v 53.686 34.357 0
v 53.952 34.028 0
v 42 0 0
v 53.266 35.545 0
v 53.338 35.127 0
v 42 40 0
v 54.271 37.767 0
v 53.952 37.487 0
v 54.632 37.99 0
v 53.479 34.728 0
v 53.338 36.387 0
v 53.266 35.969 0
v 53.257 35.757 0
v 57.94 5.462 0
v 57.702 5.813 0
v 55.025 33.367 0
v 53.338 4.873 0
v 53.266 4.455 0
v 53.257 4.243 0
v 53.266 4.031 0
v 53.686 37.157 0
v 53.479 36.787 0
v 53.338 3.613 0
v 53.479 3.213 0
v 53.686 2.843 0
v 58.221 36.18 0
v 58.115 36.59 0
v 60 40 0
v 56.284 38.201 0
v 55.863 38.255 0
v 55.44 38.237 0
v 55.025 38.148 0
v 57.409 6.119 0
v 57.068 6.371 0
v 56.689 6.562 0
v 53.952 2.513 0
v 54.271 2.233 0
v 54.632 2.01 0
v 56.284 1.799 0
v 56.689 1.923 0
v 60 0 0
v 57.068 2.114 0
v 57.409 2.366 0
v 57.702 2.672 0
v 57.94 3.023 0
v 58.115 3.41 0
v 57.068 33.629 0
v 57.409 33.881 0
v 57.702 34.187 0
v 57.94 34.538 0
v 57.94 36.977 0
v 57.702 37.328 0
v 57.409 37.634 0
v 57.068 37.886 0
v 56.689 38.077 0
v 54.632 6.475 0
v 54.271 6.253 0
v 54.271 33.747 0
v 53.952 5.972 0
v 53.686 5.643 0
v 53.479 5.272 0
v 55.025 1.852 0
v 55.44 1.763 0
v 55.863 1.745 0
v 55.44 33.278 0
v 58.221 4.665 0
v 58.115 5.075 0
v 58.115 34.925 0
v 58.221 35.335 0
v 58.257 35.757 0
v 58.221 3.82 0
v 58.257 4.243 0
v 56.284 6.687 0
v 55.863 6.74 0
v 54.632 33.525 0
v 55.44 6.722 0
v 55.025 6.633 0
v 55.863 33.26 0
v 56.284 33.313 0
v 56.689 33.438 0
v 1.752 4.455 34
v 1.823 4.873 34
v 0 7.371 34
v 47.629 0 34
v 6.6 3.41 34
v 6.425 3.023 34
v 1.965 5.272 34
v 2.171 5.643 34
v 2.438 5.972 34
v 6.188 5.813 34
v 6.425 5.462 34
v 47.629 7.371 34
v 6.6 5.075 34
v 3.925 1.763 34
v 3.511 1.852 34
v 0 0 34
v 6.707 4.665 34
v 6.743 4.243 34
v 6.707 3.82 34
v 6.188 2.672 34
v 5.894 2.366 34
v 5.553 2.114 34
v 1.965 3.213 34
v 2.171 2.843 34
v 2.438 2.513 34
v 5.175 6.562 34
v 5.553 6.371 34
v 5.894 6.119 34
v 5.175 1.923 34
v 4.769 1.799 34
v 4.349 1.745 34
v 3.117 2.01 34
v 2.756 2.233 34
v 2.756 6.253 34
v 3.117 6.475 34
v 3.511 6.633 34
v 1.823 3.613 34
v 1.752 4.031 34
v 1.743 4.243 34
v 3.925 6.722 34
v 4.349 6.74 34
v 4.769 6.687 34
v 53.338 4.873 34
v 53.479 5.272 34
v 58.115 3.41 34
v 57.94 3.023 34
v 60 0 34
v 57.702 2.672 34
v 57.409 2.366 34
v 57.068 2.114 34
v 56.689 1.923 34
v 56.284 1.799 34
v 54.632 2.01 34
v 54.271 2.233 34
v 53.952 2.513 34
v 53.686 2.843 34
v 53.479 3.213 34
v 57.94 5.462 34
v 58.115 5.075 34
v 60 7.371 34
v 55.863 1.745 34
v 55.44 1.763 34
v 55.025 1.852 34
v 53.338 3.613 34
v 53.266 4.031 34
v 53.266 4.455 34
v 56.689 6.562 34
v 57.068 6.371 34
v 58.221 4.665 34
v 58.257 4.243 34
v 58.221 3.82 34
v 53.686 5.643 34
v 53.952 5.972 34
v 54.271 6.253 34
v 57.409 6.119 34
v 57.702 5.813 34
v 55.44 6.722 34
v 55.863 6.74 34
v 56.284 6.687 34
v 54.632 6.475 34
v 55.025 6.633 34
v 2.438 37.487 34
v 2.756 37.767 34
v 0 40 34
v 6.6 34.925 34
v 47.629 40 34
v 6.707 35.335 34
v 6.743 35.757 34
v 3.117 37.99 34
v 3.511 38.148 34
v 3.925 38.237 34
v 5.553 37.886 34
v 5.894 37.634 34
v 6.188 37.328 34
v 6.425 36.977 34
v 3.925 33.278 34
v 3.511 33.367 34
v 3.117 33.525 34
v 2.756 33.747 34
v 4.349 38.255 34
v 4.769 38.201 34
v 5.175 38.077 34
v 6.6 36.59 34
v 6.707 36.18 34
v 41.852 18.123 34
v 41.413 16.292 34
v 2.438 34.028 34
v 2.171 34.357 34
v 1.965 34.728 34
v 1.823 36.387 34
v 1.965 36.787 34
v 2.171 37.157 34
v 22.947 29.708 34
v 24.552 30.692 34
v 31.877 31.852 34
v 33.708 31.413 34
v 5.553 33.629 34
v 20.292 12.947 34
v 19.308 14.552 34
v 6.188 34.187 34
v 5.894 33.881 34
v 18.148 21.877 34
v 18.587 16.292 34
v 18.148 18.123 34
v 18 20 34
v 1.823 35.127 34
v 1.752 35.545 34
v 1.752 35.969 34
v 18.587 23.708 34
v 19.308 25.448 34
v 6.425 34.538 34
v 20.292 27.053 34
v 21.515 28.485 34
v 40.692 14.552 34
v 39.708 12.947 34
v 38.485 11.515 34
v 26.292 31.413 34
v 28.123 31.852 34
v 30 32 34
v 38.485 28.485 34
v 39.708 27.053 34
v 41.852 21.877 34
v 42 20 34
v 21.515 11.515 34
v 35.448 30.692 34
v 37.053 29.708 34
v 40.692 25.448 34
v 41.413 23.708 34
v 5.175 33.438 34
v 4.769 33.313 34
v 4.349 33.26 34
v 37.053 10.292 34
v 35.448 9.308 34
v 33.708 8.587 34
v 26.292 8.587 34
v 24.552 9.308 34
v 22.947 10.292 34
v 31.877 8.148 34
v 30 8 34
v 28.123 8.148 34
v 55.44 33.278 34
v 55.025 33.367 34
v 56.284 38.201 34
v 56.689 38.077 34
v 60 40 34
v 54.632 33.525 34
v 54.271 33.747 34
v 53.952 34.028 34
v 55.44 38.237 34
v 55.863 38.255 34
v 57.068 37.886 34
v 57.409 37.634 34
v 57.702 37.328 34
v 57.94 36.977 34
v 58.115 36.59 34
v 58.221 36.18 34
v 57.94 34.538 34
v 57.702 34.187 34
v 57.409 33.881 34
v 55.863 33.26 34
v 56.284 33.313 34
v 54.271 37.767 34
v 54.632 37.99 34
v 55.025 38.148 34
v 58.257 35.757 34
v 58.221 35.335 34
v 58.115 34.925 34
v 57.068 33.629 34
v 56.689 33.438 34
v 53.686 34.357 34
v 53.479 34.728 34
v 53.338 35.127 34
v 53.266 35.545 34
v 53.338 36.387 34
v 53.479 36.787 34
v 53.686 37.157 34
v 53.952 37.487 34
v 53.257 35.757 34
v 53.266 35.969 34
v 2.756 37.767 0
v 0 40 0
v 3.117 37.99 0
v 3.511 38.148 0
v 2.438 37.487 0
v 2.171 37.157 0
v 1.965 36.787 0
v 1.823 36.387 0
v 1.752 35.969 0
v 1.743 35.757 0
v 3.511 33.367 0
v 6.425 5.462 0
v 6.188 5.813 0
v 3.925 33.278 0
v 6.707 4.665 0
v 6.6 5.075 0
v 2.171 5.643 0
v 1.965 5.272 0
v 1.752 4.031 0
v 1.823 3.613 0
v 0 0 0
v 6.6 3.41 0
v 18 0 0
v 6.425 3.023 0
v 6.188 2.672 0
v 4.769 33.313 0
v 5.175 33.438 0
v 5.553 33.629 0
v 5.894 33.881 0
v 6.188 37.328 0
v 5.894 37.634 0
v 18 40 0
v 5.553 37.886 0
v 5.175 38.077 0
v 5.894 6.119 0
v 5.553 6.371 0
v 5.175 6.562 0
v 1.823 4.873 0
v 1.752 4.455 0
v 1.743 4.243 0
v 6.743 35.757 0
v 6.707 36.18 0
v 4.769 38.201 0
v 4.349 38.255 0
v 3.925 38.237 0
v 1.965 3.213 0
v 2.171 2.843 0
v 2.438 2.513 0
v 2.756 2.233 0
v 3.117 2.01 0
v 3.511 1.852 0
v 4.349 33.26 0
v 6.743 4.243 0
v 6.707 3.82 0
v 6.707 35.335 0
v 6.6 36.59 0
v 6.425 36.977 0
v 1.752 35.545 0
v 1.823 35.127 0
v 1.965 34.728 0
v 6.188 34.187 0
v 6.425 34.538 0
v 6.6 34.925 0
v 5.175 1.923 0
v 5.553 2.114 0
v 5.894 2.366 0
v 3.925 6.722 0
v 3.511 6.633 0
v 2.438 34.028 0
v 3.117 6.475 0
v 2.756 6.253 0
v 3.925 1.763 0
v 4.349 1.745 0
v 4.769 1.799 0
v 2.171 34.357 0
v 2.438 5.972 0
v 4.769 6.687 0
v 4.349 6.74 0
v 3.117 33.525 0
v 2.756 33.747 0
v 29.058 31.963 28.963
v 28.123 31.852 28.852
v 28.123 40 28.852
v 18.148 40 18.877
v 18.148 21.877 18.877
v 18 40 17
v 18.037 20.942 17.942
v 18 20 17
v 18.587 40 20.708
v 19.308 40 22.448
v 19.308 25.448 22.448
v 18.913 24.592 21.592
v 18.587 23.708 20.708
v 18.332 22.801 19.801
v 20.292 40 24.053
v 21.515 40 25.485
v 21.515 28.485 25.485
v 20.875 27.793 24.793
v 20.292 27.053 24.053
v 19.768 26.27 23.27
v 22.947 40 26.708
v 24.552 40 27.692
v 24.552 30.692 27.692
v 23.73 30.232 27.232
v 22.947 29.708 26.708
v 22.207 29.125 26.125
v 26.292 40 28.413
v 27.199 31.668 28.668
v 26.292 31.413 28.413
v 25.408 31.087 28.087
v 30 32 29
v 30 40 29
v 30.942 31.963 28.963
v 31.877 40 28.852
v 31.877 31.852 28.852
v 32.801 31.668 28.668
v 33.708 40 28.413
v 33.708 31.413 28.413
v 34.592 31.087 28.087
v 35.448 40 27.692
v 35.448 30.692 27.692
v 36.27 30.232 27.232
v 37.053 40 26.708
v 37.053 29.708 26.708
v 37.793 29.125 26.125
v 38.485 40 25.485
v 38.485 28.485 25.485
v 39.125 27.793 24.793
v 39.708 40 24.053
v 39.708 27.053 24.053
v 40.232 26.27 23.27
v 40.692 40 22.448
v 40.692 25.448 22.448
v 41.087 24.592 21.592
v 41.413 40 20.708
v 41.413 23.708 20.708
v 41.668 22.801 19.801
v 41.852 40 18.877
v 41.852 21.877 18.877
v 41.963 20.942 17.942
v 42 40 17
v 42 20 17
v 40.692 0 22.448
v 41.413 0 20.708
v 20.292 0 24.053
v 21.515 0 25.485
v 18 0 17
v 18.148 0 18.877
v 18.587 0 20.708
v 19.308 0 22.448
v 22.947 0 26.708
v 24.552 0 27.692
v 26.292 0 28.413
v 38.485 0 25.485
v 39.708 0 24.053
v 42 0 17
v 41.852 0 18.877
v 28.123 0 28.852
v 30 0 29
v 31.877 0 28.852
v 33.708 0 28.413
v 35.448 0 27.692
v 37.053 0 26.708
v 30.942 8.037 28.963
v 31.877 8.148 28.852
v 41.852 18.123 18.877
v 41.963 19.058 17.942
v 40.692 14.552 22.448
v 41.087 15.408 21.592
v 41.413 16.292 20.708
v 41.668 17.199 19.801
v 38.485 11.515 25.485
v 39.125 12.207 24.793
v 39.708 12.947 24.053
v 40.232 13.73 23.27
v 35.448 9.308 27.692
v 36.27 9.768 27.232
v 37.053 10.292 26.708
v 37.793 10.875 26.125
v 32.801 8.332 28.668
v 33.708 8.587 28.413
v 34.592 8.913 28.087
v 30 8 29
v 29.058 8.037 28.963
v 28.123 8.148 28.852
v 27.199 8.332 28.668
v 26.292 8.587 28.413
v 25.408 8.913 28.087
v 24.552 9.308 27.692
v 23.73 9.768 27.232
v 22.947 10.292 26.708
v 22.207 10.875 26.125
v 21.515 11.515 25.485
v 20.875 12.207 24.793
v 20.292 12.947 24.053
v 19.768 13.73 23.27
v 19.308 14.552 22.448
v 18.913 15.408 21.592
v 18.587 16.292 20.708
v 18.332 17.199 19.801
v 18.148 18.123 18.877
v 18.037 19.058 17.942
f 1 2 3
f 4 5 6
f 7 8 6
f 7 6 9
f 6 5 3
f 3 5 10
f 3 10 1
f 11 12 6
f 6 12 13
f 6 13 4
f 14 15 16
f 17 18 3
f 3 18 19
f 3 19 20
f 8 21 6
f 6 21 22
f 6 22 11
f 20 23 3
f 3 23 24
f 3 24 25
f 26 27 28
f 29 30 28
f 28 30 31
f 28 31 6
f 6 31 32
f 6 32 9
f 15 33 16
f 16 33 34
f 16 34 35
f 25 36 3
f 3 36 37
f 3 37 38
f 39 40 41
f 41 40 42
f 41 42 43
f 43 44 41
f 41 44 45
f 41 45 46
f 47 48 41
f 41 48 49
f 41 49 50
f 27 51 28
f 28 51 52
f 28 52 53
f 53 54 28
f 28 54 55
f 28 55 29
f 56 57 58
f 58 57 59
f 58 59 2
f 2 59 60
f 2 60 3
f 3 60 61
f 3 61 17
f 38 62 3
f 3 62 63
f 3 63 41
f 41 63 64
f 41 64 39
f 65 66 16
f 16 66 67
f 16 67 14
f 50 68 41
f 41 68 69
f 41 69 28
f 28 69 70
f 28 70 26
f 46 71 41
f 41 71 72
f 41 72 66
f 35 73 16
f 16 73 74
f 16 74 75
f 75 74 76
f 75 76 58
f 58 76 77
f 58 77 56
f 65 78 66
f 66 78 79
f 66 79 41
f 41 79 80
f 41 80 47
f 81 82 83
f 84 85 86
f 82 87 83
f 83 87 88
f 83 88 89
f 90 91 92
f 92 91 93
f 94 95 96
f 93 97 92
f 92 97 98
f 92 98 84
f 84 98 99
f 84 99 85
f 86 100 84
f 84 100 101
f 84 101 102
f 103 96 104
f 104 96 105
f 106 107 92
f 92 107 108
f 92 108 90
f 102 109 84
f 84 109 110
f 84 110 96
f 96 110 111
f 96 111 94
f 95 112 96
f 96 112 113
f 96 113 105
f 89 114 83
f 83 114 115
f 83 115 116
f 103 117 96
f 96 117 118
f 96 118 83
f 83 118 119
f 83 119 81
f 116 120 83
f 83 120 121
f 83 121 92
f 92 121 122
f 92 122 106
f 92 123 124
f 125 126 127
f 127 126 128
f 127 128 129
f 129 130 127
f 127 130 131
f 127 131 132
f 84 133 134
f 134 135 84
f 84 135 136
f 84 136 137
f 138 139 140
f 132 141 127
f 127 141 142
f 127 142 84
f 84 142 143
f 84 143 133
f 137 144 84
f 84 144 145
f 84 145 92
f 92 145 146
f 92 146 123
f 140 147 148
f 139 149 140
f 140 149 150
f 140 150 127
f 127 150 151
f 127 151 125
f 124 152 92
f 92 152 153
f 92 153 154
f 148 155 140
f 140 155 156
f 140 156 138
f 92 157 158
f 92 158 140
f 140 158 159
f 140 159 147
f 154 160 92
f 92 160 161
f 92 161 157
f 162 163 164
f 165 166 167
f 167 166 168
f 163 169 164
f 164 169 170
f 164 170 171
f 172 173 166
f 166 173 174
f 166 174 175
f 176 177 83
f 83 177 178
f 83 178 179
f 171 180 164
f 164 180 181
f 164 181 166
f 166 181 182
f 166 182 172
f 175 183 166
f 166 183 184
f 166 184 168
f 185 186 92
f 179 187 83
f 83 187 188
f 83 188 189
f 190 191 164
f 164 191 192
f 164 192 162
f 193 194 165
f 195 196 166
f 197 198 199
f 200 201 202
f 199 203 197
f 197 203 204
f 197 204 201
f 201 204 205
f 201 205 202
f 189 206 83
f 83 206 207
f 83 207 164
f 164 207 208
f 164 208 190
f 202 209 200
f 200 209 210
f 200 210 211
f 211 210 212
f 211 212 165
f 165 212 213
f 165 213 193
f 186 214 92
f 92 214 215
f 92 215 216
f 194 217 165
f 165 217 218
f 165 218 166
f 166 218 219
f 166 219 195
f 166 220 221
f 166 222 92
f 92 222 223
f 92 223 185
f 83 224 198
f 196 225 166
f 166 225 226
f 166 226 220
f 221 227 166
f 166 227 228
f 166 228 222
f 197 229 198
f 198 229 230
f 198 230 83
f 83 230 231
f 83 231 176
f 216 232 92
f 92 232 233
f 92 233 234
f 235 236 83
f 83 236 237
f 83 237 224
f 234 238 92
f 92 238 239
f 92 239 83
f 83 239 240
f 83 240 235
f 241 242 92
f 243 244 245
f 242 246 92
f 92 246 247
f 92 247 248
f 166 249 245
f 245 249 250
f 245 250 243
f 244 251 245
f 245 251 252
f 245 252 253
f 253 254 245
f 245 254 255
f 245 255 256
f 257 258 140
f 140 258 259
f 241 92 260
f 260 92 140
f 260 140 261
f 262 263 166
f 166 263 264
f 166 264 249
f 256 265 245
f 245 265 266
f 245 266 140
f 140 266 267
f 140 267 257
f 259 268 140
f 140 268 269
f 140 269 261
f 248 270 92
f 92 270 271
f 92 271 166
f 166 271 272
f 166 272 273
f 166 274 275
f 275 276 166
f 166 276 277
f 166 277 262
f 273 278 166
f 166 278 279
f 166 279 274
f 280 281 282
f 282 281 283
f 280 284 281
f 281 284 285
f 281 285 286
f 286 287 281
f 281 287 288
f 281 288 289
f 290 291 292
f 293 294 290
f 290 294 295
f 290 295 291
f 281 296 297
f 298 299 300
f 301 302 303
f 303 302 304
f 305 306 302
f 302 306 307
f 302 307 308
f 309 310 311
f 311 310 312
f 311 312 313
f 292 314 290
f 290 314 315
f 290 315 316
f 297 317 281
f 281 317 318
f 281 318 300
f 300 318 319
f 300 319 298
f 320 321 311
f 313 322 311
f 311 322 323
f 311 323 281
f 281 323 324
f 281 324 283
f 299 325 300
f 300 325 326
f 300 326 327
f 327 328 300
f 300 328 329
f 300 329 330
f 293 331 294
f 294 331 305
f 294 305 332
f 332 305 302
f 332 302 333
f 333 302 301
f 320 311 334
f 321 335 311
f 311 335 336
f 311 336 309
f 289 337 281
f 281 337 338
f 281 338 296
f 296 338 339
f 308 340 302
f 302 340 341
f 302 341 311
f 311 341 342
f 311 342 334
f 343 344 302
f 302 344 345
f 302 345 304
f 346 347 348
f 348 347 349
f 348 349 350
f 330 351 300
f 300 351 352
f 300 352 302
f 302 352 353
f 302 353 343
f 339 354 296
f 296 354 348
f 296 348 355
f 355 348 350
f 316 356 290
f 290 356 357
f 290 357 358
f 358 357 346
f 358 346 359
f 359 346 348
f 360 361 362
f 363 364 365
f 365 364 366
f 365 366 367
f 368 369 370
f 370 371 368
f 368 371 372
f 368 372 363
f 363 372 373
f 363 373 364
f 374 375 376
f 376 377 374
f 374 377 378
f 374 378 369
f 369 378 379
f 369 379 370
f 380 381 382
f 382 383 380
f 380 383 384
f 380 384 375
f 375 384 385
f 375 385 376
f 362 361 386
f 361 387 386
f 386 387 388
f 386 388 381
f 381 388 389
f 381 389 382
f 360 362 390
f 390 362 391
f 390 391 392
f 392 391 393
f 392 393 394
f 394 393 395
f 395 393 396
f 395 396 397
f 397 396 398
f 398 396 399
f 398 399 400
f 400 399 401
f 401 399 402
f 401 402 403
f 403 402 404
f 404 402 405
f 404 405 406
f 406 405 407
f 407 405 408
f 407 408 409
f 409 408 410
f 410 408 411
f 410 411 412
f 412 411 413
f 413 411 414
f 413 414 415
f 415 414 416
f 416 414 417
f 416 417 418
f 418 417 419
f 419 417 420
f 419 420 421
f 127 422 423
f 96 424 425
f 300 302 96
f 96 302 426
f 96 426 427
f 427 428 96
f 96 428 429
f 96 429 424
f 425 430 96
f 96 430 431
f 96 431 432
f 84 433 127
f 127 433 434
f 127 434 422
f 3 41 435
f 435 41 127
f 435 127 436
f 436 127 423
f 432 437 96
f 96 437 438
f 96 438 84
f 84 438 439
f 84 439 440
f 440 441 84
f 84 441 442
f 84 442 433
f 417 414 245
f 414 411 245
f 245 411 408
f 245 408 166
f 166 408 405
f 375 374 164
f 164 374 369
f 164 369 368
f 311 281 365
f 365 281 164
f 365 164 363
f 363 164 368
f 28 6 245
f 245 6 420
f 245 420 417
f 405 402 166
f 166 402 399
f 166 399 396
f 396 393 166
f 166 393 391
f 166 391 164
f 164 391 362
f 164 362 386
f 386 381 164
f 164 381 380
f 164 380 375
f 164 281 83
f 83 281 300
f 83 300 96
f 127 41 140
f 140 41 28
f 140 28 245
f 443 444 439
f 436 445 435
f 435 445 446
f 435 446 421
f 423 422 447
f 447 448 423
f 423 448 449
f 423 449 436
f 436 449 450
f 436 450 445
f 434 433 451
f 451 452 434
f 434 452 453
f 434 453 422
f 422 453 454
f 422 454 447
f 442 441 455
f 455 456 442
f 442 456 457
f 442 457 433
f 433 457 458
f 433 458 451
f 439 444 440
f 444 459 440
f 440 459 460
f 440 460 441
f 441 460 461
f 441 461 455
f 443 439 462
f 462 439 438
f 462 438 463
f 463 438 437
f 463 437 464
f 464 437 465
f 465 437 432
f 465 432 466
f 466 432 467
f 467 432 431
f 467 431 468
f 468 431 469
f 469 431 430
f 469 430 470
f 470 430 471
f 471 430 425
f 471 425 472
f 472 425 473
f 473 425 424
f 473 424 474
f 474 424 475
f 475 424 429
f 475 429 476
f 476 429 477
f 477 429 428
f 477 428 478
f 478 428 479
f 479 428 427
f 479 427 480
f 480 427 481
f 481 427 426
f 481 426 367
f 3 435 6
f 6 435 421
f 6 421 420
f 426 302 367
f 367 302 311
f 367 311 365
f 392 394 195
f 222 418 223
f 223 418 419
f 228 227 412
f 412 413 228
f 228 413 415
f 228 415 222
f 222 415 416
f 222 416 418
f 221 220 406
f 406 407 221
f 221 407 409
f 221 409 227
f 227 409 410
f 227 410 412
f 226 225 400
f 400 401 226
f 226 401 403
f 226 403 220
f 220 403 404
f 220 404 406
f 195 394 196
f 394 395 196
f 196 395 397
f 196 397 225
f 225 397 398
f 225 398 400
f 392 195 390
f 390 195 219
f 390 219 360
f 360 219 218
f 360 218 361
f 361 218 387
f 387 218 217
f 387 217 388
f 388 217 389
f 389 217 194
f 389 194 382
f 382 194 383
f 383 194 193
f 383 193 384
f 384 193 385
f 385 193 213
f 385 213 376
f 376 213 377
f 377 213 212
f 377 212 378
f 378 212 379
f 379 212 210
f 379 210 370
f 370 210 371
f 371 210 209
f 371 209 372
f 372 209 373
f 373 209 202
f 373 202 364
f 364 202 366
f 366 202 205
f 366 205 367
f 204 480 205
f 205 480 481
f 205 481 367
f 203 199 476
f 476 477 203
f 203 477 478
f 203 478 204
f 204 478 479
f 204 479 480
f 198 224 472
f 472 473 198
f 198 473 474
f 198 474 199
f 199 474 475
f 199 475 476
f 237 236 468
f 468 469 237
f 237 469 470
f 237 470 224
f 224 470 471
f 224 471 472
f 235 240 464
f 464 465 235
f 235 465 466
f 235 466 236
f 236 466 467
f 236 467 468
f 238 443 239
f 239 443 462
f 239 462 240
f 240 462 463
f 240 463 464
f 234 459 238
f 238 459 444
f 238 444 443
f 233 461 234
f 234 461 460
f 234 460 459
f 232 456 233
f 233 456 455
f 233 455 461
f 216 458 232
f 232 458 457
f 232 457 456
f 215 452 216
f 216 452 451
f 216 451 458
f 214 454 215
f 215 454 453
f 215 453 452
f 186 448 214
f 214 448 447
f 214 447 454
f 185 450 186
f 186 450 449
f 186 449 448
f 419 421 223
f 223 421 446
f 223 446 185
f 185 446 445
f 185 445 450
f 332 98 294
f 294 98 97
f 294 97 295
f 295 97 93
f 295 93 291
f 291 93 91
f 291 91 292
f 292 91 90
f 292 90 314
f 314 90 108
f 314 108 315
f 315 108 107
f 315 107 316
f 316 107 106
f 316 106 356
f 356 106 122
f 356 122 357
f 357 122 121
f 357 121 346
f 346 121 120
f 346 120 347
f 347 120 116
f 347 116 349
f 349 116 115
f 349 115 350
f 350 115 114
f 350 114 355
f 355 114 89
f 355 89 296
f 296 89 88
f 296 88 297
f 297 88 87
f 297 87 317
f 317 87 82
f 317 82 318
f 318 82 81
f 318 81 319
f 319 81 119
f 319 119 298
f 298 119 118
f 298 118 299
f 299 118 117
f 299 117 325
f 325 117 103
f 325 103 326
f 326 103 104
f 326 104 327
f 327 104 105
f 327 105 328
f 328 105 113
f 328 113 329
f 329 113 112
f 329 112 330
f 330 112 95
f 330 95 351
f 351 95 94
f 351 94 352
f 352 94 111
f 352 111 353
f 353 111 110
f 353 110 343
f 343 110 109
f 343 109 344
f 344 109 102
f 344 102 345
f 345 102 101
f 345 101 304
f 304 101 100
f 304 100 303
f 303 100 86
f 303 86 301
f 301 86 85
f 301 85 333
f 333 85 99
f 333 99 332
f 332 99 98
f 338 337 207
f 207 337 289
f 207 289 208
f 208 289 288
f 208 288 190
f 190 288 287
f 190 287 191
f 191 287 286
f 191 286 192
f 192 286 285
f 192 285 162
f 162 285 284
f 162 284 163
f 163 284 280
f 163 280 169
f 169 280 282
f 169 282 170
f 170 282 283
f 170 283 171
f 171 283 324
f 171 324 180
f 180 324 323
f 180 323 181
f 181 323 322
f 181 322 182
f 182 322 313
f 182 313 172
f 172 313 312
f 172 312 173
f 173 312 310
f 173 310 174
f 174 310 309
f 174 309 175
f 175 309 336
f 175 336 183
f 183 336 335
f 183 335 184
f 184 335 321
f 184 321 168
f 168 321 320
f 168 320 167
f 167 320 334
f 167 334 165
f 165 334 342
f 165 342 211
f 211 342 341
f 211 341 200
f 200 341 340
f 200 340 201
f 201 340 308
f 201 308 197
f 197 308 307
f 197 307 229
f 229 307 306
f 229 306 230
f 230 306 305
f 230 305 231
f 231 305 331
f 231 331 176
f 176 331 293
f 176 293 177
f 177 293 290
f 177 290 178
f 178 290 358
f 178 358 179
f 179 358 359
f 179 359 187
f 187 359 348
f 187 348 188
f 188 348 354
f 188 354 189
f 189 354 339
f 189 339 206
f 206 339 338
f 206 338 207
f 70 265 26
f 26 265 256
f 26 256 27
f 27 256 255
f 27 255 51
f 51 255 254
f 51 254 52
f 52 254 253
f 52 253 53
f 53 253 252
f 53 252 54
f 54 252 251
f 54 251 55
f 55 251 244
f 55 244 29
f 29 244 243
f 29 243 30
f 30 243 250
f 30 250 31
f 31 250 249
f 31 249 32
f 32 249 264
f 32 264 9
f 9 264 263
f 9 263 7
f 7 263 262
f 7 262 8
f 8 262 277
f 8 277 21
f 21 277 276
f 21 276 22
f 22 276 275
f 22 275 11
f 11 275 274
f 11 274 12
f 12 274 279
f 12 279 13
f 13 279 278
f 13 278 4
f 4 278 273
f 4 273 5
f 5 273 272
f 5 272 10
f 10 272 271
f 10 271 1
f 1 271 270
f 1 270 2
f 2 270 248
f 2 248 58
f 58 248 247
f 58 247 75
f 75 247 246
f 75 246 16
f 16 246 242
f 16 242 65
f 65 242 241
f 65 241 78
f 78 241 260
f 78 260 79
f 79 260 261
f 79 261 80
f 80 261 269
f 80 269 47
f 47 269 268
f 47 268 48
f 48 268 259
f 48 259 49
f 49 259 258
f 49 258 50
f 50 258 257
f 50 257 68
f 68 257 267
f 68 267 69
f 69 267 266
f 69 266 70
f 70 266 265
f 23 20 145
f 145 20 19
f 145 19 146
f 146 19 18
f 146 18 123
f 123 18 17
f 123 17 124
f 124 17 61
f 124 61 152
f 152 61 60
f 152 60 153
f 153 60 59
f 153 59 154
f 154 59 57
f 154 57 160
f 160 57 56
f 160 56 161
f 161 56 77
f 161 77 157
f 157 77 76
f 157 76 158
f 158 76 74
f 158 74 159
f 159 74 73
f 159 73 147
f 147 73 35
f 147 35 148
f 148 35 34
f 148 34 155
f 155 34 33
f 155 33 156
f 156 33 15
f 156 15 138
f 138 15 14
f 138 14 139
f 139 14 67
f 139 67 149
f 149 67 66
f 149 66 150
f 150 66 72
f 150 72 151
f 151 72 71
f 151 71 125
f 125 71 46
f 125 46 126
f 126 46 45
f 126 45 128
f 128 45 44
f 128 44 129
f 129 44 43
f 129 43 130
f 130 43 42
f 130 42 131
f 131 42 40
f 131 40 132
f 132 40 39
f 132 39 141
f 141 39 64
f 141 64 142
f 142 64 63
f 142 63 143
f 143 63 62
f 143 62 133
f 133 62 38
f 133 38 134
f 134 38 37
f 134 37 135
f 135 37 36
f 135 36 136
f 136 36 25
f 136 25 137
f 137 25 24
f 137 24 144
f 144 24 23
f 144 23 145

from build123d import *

# Parameters (mm, degrees)
SKETCH1_W           = 60
SKETCH1_H           = 40
BOSS_EXTRUDE1_DEPTH = 34
CUT_EXTRUDE1_DEPTH  = 40
SKETCH3_R           = 12
CUT_EXTRUDE2_DEPTH  = 40
SKETCH4_R           = 2.5
CUT_EXTRUDE3_DEPTH  = 40


with BuildPart() as part:
    # Sketch1 → Boss-Extrude1 (new body)
    with BuildSketch(Plane.XY):
        with Locations((30, 20)):
            Rectangle(SKETCH1_W, SKETCH1_H)
    extrude(amount=BOSS_EXTRUDE1_DEPTH)

    # Sketch2 → Cut-Extrude1 (cut)
    with BuildSketch(Plane.XZ):
        with BuildLine():
            ThreePointArc((42, 17), (30, 29), (18, 17))
            Line((18, 17), (18, 0))
            Line((18, 0), (42, 0))
            Line((42, 0), (42, 17))
        make_face()
    extrude(amount=-CUT_EXTRUDE1_DEPTH, mode=Mode.SUBTRACT)

    # Sketch3 → Cut-Extrude2 (cut)
    with BuildSketch(Plane.XY.offset(34)):
        with Locations((30, 20)):
            Circle(SKETCH3_R)
    extrude(amount=-CUT_EXTRUDE2_DEPTH, mode=Mode.SUBTRACT)

    # Sketch4 → Cut-Extrude3 (cut)
    with BuildSketch(Plane.XY.offset(34)):
        with Locations((55.757359313, 4.242640687)):
            Circle(SKETCH4_R)
        with Locations((4.242640687, 4.242640687)):
            Circle(SKETCH4_R)
        with Locations((55.757359313, 35.757359313)):
            Circle(SKETCH4_R)
        with Locations((4.242640687, 35.757359313)):
            Circle(SKETCH4_R)
    extrude(amount=-CUT_EXTRUDE3_DEPTH, mode=Mode.SUBTRACT)


solid = part.part
